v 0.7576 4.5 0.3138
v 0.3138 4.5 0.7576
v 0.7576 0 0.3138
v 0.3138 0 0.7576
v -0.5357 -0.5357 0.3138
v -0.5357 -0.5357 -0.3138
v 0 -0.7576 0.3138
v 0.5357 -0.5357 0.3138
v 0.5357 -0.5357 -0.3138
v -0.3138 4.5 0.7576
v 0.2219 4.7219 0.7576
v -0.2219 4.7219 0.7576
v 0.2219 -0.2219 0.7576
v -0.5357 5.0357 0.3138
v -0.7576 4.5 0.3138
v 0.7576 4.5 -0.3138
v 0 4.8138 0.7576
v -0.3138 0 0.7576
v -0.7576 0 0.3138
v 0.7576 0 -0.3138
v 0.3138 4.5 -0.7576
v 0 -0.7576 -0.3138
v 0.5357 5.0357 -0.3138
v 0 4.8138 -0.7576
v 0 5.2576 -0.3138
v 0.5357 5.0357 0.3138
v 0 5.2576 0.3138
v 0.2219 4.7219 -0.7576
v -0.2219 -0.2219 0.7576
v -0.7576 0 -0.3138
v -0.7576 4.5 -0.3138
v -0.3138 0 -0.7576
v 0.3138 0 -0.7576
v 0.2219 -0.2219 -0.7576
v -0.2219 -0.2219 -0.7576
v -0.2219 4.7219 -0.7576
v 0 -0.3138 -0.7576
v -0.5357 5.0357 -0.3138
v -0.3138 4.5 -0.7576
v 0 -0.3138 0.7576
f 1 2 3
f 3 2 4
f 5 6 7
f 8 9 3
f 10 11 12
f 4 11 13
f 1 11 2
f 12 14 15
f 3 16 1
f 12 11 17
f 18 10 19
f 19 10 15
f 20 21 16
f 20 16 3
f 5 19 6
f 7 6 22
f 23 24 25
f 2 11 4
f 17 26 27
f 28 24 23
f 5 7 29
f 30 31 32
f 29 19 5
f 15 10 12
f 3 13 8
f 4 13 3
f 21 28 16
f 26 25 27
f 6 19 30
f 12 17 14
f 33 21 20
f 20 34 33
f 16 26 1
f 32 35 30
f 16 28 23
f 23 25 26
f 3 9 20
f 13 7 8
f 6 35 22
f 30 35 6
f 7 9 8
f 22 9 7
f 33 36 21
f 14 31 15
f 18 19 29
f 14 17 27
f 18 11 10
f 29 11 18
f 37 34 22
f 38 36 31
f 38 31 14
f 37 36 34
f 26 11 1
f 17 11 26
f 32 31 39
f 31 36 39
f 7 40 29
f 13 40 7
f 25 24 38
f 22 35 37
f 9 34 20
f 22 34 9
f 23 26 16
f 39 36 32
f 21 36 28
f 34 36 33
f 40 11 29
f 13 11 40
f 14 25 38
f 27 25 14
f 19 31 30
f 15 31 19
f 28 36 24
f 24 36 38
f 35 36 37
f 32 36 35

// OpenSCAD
module rod(a, b, r) {
        hull() {
            translate(a) sphere(r,$fn=8);
            translate(b) sphere(r,$fn=8);
        }
    }

rod([0,0,0],[0,4.5,0],0.82);
